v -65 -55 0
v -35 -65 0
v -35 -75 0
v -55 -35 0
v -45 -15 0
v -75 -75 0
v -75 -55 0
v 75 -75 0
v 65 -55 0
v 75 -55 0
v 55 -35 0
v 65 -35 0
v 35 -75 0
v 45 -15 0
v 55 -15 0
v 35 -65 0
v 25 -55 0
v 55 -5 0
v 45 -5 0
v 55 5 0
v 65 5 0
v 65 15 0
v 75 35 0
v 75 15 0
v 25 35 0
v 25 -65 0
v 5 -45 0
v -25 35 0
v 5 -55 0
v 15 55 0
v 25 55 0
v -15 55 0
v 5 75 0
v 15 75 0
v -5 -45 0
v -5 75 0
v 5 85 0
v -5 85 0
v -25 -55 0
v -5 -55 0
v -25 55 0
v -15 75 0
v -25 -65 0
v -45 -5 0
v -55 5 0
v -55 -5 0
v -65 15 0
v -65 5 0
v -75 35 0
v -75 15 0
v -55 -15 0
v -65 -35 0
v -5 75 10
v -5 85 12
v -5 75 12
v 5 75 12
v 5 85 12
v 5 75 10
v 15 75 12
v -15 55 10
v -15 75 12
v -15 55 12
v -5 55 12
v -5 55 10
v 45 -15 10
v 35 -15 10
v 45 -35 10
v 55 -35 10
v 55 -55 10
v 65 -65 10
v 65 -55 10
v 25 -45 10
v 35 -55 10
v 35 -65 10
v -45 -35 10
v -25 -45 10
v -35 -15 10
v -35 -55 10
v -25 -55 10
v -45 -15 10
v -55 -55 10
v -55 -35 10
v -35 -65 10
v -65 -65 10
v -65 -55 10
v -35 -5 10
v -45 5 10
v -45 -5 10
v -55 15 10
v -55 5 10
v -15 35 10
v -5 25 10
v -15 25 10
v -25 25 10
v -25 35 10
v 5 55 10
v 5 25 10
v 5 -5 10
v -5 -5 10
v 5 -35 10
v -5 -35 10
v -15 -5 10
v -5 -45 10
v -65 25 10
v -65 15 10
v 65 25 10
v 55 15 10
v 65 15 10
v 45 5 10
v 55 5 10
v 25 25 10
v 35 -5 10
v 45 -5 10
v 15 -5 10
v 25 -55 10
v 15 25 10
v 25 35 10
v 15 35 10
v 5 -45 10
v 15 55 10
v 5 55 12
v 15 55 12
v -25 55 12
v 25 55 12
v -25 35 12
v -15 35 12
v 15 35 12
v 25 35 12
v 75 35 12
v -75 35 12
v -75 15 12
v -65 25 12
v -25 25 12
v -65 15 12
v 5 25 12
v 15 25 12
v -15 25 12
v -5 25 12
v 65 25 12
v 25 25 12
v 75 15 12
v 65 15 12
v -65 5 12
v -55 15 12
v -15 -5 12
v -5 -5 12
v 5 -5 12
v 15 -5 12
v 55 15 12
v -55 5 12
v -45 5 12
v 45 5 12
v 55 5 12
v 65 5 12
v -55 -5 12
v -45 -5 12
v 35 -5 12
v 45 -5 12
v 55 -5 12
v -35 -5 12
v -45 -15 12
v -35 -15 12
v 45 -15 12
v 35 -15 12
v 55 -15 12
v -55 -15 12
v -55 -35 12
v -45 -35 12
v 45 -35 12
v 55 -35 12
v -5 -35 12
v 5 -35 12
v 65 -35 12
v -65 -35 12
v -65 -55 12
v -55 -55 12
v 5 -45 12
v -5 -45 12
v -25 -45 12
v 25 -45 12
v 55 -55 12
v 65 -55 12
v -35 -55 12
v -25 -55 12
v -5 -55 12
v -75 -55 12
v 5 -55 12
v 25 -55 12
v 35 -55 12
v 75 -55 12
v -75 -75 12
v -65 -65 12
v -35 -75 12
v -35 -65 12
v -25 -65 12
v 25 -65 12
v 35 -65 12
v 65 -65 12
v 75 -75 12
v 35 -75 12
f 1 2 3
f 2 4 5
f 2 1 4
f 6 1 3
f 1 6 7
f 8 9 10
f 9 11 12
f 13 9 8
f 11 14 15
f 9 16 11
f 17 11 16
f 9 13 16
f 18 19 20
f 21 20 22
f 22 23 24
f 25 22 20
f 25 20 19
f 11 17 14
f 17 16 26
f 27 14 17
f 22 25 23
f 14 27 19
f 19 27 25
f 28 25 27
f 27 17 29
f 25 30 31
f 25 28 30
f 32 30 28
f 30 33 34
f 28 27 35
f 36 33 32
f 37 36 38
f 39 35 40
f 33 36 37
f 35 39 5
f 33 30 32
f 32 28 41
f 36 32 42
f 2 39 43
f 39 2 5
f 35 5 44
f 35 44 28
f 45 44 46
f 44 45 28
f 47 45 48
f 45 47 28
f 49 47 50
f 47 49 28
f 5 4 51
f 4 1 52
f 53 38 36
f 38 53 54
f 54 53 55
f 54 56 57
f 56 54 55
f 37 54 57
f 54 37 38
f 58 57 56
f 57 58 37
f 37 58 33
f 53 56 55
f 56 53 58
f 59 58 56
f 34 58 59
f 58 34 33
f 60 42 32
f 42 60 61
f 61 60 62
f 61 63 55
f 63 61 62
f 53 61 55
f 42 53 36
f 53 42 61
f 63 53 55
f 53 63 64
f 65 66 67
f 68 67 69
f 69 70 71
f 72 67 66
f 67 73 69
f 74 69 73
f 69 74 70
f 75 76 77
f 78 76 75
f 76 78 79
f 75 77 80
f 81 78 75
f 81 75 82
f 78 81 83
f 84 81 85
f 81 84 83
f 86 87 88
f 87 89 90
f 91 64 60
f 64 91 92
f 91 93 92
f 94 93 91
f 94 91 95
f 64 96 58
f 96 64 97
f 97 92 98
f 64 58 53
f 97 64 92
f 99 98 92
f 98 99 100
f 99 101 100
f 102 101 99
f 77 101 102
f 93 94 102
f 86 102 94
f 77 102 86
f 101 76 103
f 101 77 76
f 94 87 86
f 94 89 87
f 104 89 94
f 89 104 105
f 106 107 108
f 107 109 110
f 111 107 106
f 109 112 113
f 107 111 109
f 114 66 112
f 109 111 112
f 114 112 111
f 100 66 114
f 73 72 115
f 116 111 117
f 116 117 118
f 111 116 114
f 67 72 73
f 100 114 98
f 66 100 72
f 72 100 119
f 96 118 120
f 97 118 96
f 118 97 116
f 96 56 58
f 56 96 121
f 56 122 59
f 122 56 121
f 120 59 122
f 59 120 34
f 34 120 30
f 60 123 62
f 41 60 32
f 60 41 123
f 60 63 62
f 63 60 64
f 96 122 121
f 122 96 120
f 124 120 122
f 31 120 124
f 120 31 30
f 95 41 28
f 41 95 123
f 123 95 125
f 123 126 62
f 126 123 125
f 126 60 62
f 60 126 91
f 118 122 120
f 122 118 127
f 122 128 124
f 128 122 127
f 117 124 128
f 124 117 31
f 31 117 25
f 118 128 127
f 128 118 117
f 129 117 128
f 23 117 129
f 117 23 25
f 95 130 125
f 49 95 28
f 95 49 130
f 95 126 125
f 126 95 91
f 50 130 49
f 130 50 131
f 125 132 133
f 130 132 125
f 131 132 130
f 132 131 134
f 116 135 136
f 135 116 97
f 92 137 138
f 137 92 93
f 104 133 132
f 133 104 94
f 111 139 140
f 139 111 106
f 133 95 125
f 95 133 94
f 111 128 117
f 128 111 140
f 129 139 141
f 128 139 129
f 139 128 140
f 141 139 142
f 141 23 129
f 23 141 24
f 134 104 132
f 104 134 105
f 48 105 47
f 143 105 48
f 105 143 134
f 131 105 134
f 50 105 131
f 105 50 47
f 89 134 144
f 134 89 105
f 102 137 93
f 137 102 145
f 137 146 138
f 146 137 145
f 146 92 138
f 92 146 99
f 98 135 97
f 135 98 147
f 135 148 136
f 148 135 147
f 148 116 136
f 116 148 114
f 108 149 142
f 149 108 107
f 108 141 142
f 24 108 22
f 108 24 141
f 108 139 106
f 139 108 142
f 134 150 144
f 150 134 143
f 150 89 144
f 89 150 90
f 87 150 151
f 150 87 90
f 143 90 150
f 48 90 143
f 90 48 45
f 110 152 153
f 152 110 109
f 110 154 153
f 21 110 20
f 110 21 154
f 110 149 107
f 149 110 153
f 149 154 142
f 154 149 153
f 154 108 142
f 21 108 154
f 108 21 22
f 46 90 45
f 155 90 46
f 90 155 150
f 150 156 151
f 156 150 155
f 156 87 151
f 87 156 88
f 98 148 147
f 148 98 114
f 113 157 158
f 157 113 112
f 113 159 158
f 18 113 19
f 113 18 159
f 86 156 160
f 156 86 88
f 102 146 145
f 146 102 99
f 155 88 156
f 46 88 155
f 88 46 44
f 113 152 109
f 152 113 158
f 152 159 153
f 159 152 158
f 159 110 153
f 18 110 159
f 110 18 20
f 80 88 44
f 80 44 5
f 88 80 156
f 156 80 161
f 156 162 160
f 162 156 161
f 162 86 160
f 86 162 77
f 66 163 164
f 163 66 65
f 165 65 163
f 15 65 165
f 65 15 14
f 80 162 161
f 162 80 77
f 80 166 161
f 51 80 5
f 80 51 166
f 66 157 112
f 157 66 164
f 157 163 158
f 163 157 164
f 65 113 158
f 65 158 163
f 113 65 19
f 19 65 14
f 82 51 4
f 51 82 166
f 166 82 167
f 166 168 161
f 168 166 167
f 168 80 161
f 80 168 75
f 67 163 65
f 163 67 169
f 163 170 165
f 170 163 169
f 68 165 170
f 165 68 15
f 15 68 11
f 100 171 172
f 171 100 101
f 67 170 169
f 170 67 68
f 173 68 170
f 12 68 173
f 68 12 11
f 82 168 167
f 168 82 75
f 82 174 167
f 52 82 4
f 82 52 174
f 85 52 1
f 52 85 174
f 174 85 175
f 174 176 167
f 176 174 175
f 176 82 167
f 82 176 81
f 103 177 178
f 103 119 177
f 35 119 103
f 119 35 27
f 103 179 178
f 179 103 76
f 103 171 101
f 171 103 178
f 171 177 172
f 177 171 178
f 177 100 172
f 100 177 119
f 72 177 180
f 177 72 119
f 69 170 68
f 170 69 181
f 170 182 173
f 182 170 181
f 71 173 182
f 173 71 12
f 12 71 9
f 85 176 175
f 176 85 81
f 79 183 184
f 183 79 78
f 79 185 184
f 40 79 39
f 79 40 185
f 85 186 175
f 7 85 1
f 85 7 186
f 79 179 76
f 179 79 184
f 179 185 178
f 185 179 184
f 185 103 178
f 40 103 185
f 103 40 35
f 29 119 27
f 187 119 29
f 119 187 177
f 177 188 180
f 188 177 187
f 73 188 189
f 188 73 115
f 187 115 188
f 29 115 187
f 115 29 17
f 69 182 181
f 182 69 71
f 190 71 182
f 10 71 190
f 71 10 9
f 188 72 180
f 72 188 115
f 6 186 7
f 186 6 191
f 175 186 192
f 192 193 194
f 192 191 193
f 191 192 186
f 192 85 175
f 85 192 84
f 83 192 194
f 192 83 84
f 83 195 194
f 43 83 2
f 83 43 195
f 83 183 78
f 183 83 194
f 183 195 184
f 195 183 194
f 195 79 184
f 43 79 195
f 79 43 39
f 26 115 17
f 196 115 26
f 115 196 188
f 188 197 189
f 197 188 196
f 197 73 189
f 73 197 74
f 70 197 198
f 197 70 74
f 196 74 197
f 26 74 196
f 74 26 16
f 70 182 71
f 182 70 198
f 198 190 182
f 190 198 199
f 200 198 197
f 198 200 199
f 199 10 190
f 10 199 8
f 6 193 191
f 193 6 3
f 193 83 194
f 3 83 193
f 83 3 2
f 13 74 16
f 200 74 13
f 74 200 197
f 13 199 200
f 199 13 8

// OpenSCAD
module pixel(x, y, pixel_color, pixel_height = 1.0) {
    color(pixel_color) {
	linear_extrude(height = pixel_height) {
	    translate([x, y]) {
		square(size = 1, center=true);
	    }
	}
    }
}

COLOR_PALETTE = [
  "yellow",
  "black",
];

COLOR_HEIGHTS = [
  1.0,
  1.2,
];

STAR_PIXELS = [
  [0, 8, 1],
  [-1, 7, 1], [0, 7, 0], [1, 7, 1],
  [-1, 6, 1], [0, 6, 0], [1, 6, 1],
  [-2, 5, 1], [-1, 5, 0], [0, 5, 0], [1, 5, 0], [2, 5, 1],
  [-2, 4, 1], [-1, 4, 0], [0, 4, 0], [1, 4, 0], [2, 4, 1],
  [-7, 3, 1], [-6, 3, 1], [-5, 3, 1], [-4, 3, 1], [-3, 3, 1], [-2, 3, 0], [-1, 3, 0], [0, 3, 0], [ 1, 3, 0], [2, 3, 0], [3, 3, 1], [4, 3, 1], [5, 3, 1], [6, 3, 1], [7, 3, 1],
  [-7, 2, 1], [-6, 2, 0], [-5, 2, 0], [-4, 2, 0], [-3, 2, 0], [-2, 2, 0], [-1, 2, 1], [0, 2, 0], [ 1, 2, 1], [2, 2, 0], [3, 2, 0], [4, 2, 0], [5, 2, 0], [6, 2, 0], [7, 2, 1],
  [-6, 1, 1], [-5, 1, 0], [-4, 1, 0], [-3, 1, 0], [-2, 1, 0], [-1, 1, 1], [0, 1, 0], [ 1, 1, 1], [2, 1, 0], [3, 1, 0], [4, 1, 0], [5, 1, 0], [6, 1, 1],
  [-5, 0, 1], [-4, 0, 0], [-3, 0, 0], [-2, 0, 0], [-1, 0, 1], [0, 0, 0], [ 1, 0, 1], [2, 0, 0], [3, 0, 0], [4, 0, 0], [5, 0, 1],
  [-4, -1, 1], [-3, -1, 0], [-2, -1, 0], [-1, -1, 0], [0, -1, 0], [1, -1, 0], [2, -1, 0], [3, -1, 0], [4, -1, 1],
  [-5, -2, 1], [-4, -2, 0], [-3, -2, 0], [-2, -2, 0], [-1, -2, 0], [0, -2, 0], [ 1, -2, 0], [2, -2, 0], [3, -2, 0], [4, -2, 0], [5, -2, 1],
  [-5, -3, 1], [-4, -3, 0], [-3, -3, 0], [-2, -3, 0], [-1, -3, 0], [0, -3, 0], [ 1, -3, 0], [2, -3, 0], [3, -3, 0], [4, -3, 0], [5, -3, 1],
  [-6, -4, 1], [-5, -4, 0], [-4, -4, 0], [-3, -4, 0], [-2, -4, 0], [-1, -4, 0], [0, -4, 1], [ 1, -4, 0], [2, -4, 0], [3, -4, 0], [4, -4, 0], [5, -4, 0], [6, -4, 1],
  [-6, -5, 1], [-5, -5, 0], [-4, -5, 0], [-3, -5, 0], [-2, -5, 1], [-1, -5, 1], [ 1, -5, 1], [2, -5, 1], [3, -5, 0], [4, -5, 0], [5, -5, 0], [6, -5, 1],
  [-7, -6, 1], [-6, -6, 0], [-5, -6, 0], [-4, -6, 0], [-3, -6, 1], [3, -6, 1], [4, -6, 0], [5, -6, 0], [6, -6, 0], [7, -6, 1],
  [-7, -7, 1], [-6, -7, 1], [-5, -7, 1], [-4, -7, 1], [4, -7, 1], [5, -7, 1], [6, -7, 1], [7, -7, 1],
];

module body(canvas_size, pixel_count, pixels) {
    pixel_size = canvas_size / pixel_count;
    scale([pixel_size, pixel_size, 1.0]) {
	for (coord = pixels) {
	    pixel(x=coord[0], y=coord[1], pixel_color=COLOR_PALETTE[coord[2]], pixel_height=COLOR_HEIGHTS[coord[2]] * pixel_size);
	}
    }
}

body(canvas_size=170, pixel_count=17, pixels=STAR_PIXELS);
